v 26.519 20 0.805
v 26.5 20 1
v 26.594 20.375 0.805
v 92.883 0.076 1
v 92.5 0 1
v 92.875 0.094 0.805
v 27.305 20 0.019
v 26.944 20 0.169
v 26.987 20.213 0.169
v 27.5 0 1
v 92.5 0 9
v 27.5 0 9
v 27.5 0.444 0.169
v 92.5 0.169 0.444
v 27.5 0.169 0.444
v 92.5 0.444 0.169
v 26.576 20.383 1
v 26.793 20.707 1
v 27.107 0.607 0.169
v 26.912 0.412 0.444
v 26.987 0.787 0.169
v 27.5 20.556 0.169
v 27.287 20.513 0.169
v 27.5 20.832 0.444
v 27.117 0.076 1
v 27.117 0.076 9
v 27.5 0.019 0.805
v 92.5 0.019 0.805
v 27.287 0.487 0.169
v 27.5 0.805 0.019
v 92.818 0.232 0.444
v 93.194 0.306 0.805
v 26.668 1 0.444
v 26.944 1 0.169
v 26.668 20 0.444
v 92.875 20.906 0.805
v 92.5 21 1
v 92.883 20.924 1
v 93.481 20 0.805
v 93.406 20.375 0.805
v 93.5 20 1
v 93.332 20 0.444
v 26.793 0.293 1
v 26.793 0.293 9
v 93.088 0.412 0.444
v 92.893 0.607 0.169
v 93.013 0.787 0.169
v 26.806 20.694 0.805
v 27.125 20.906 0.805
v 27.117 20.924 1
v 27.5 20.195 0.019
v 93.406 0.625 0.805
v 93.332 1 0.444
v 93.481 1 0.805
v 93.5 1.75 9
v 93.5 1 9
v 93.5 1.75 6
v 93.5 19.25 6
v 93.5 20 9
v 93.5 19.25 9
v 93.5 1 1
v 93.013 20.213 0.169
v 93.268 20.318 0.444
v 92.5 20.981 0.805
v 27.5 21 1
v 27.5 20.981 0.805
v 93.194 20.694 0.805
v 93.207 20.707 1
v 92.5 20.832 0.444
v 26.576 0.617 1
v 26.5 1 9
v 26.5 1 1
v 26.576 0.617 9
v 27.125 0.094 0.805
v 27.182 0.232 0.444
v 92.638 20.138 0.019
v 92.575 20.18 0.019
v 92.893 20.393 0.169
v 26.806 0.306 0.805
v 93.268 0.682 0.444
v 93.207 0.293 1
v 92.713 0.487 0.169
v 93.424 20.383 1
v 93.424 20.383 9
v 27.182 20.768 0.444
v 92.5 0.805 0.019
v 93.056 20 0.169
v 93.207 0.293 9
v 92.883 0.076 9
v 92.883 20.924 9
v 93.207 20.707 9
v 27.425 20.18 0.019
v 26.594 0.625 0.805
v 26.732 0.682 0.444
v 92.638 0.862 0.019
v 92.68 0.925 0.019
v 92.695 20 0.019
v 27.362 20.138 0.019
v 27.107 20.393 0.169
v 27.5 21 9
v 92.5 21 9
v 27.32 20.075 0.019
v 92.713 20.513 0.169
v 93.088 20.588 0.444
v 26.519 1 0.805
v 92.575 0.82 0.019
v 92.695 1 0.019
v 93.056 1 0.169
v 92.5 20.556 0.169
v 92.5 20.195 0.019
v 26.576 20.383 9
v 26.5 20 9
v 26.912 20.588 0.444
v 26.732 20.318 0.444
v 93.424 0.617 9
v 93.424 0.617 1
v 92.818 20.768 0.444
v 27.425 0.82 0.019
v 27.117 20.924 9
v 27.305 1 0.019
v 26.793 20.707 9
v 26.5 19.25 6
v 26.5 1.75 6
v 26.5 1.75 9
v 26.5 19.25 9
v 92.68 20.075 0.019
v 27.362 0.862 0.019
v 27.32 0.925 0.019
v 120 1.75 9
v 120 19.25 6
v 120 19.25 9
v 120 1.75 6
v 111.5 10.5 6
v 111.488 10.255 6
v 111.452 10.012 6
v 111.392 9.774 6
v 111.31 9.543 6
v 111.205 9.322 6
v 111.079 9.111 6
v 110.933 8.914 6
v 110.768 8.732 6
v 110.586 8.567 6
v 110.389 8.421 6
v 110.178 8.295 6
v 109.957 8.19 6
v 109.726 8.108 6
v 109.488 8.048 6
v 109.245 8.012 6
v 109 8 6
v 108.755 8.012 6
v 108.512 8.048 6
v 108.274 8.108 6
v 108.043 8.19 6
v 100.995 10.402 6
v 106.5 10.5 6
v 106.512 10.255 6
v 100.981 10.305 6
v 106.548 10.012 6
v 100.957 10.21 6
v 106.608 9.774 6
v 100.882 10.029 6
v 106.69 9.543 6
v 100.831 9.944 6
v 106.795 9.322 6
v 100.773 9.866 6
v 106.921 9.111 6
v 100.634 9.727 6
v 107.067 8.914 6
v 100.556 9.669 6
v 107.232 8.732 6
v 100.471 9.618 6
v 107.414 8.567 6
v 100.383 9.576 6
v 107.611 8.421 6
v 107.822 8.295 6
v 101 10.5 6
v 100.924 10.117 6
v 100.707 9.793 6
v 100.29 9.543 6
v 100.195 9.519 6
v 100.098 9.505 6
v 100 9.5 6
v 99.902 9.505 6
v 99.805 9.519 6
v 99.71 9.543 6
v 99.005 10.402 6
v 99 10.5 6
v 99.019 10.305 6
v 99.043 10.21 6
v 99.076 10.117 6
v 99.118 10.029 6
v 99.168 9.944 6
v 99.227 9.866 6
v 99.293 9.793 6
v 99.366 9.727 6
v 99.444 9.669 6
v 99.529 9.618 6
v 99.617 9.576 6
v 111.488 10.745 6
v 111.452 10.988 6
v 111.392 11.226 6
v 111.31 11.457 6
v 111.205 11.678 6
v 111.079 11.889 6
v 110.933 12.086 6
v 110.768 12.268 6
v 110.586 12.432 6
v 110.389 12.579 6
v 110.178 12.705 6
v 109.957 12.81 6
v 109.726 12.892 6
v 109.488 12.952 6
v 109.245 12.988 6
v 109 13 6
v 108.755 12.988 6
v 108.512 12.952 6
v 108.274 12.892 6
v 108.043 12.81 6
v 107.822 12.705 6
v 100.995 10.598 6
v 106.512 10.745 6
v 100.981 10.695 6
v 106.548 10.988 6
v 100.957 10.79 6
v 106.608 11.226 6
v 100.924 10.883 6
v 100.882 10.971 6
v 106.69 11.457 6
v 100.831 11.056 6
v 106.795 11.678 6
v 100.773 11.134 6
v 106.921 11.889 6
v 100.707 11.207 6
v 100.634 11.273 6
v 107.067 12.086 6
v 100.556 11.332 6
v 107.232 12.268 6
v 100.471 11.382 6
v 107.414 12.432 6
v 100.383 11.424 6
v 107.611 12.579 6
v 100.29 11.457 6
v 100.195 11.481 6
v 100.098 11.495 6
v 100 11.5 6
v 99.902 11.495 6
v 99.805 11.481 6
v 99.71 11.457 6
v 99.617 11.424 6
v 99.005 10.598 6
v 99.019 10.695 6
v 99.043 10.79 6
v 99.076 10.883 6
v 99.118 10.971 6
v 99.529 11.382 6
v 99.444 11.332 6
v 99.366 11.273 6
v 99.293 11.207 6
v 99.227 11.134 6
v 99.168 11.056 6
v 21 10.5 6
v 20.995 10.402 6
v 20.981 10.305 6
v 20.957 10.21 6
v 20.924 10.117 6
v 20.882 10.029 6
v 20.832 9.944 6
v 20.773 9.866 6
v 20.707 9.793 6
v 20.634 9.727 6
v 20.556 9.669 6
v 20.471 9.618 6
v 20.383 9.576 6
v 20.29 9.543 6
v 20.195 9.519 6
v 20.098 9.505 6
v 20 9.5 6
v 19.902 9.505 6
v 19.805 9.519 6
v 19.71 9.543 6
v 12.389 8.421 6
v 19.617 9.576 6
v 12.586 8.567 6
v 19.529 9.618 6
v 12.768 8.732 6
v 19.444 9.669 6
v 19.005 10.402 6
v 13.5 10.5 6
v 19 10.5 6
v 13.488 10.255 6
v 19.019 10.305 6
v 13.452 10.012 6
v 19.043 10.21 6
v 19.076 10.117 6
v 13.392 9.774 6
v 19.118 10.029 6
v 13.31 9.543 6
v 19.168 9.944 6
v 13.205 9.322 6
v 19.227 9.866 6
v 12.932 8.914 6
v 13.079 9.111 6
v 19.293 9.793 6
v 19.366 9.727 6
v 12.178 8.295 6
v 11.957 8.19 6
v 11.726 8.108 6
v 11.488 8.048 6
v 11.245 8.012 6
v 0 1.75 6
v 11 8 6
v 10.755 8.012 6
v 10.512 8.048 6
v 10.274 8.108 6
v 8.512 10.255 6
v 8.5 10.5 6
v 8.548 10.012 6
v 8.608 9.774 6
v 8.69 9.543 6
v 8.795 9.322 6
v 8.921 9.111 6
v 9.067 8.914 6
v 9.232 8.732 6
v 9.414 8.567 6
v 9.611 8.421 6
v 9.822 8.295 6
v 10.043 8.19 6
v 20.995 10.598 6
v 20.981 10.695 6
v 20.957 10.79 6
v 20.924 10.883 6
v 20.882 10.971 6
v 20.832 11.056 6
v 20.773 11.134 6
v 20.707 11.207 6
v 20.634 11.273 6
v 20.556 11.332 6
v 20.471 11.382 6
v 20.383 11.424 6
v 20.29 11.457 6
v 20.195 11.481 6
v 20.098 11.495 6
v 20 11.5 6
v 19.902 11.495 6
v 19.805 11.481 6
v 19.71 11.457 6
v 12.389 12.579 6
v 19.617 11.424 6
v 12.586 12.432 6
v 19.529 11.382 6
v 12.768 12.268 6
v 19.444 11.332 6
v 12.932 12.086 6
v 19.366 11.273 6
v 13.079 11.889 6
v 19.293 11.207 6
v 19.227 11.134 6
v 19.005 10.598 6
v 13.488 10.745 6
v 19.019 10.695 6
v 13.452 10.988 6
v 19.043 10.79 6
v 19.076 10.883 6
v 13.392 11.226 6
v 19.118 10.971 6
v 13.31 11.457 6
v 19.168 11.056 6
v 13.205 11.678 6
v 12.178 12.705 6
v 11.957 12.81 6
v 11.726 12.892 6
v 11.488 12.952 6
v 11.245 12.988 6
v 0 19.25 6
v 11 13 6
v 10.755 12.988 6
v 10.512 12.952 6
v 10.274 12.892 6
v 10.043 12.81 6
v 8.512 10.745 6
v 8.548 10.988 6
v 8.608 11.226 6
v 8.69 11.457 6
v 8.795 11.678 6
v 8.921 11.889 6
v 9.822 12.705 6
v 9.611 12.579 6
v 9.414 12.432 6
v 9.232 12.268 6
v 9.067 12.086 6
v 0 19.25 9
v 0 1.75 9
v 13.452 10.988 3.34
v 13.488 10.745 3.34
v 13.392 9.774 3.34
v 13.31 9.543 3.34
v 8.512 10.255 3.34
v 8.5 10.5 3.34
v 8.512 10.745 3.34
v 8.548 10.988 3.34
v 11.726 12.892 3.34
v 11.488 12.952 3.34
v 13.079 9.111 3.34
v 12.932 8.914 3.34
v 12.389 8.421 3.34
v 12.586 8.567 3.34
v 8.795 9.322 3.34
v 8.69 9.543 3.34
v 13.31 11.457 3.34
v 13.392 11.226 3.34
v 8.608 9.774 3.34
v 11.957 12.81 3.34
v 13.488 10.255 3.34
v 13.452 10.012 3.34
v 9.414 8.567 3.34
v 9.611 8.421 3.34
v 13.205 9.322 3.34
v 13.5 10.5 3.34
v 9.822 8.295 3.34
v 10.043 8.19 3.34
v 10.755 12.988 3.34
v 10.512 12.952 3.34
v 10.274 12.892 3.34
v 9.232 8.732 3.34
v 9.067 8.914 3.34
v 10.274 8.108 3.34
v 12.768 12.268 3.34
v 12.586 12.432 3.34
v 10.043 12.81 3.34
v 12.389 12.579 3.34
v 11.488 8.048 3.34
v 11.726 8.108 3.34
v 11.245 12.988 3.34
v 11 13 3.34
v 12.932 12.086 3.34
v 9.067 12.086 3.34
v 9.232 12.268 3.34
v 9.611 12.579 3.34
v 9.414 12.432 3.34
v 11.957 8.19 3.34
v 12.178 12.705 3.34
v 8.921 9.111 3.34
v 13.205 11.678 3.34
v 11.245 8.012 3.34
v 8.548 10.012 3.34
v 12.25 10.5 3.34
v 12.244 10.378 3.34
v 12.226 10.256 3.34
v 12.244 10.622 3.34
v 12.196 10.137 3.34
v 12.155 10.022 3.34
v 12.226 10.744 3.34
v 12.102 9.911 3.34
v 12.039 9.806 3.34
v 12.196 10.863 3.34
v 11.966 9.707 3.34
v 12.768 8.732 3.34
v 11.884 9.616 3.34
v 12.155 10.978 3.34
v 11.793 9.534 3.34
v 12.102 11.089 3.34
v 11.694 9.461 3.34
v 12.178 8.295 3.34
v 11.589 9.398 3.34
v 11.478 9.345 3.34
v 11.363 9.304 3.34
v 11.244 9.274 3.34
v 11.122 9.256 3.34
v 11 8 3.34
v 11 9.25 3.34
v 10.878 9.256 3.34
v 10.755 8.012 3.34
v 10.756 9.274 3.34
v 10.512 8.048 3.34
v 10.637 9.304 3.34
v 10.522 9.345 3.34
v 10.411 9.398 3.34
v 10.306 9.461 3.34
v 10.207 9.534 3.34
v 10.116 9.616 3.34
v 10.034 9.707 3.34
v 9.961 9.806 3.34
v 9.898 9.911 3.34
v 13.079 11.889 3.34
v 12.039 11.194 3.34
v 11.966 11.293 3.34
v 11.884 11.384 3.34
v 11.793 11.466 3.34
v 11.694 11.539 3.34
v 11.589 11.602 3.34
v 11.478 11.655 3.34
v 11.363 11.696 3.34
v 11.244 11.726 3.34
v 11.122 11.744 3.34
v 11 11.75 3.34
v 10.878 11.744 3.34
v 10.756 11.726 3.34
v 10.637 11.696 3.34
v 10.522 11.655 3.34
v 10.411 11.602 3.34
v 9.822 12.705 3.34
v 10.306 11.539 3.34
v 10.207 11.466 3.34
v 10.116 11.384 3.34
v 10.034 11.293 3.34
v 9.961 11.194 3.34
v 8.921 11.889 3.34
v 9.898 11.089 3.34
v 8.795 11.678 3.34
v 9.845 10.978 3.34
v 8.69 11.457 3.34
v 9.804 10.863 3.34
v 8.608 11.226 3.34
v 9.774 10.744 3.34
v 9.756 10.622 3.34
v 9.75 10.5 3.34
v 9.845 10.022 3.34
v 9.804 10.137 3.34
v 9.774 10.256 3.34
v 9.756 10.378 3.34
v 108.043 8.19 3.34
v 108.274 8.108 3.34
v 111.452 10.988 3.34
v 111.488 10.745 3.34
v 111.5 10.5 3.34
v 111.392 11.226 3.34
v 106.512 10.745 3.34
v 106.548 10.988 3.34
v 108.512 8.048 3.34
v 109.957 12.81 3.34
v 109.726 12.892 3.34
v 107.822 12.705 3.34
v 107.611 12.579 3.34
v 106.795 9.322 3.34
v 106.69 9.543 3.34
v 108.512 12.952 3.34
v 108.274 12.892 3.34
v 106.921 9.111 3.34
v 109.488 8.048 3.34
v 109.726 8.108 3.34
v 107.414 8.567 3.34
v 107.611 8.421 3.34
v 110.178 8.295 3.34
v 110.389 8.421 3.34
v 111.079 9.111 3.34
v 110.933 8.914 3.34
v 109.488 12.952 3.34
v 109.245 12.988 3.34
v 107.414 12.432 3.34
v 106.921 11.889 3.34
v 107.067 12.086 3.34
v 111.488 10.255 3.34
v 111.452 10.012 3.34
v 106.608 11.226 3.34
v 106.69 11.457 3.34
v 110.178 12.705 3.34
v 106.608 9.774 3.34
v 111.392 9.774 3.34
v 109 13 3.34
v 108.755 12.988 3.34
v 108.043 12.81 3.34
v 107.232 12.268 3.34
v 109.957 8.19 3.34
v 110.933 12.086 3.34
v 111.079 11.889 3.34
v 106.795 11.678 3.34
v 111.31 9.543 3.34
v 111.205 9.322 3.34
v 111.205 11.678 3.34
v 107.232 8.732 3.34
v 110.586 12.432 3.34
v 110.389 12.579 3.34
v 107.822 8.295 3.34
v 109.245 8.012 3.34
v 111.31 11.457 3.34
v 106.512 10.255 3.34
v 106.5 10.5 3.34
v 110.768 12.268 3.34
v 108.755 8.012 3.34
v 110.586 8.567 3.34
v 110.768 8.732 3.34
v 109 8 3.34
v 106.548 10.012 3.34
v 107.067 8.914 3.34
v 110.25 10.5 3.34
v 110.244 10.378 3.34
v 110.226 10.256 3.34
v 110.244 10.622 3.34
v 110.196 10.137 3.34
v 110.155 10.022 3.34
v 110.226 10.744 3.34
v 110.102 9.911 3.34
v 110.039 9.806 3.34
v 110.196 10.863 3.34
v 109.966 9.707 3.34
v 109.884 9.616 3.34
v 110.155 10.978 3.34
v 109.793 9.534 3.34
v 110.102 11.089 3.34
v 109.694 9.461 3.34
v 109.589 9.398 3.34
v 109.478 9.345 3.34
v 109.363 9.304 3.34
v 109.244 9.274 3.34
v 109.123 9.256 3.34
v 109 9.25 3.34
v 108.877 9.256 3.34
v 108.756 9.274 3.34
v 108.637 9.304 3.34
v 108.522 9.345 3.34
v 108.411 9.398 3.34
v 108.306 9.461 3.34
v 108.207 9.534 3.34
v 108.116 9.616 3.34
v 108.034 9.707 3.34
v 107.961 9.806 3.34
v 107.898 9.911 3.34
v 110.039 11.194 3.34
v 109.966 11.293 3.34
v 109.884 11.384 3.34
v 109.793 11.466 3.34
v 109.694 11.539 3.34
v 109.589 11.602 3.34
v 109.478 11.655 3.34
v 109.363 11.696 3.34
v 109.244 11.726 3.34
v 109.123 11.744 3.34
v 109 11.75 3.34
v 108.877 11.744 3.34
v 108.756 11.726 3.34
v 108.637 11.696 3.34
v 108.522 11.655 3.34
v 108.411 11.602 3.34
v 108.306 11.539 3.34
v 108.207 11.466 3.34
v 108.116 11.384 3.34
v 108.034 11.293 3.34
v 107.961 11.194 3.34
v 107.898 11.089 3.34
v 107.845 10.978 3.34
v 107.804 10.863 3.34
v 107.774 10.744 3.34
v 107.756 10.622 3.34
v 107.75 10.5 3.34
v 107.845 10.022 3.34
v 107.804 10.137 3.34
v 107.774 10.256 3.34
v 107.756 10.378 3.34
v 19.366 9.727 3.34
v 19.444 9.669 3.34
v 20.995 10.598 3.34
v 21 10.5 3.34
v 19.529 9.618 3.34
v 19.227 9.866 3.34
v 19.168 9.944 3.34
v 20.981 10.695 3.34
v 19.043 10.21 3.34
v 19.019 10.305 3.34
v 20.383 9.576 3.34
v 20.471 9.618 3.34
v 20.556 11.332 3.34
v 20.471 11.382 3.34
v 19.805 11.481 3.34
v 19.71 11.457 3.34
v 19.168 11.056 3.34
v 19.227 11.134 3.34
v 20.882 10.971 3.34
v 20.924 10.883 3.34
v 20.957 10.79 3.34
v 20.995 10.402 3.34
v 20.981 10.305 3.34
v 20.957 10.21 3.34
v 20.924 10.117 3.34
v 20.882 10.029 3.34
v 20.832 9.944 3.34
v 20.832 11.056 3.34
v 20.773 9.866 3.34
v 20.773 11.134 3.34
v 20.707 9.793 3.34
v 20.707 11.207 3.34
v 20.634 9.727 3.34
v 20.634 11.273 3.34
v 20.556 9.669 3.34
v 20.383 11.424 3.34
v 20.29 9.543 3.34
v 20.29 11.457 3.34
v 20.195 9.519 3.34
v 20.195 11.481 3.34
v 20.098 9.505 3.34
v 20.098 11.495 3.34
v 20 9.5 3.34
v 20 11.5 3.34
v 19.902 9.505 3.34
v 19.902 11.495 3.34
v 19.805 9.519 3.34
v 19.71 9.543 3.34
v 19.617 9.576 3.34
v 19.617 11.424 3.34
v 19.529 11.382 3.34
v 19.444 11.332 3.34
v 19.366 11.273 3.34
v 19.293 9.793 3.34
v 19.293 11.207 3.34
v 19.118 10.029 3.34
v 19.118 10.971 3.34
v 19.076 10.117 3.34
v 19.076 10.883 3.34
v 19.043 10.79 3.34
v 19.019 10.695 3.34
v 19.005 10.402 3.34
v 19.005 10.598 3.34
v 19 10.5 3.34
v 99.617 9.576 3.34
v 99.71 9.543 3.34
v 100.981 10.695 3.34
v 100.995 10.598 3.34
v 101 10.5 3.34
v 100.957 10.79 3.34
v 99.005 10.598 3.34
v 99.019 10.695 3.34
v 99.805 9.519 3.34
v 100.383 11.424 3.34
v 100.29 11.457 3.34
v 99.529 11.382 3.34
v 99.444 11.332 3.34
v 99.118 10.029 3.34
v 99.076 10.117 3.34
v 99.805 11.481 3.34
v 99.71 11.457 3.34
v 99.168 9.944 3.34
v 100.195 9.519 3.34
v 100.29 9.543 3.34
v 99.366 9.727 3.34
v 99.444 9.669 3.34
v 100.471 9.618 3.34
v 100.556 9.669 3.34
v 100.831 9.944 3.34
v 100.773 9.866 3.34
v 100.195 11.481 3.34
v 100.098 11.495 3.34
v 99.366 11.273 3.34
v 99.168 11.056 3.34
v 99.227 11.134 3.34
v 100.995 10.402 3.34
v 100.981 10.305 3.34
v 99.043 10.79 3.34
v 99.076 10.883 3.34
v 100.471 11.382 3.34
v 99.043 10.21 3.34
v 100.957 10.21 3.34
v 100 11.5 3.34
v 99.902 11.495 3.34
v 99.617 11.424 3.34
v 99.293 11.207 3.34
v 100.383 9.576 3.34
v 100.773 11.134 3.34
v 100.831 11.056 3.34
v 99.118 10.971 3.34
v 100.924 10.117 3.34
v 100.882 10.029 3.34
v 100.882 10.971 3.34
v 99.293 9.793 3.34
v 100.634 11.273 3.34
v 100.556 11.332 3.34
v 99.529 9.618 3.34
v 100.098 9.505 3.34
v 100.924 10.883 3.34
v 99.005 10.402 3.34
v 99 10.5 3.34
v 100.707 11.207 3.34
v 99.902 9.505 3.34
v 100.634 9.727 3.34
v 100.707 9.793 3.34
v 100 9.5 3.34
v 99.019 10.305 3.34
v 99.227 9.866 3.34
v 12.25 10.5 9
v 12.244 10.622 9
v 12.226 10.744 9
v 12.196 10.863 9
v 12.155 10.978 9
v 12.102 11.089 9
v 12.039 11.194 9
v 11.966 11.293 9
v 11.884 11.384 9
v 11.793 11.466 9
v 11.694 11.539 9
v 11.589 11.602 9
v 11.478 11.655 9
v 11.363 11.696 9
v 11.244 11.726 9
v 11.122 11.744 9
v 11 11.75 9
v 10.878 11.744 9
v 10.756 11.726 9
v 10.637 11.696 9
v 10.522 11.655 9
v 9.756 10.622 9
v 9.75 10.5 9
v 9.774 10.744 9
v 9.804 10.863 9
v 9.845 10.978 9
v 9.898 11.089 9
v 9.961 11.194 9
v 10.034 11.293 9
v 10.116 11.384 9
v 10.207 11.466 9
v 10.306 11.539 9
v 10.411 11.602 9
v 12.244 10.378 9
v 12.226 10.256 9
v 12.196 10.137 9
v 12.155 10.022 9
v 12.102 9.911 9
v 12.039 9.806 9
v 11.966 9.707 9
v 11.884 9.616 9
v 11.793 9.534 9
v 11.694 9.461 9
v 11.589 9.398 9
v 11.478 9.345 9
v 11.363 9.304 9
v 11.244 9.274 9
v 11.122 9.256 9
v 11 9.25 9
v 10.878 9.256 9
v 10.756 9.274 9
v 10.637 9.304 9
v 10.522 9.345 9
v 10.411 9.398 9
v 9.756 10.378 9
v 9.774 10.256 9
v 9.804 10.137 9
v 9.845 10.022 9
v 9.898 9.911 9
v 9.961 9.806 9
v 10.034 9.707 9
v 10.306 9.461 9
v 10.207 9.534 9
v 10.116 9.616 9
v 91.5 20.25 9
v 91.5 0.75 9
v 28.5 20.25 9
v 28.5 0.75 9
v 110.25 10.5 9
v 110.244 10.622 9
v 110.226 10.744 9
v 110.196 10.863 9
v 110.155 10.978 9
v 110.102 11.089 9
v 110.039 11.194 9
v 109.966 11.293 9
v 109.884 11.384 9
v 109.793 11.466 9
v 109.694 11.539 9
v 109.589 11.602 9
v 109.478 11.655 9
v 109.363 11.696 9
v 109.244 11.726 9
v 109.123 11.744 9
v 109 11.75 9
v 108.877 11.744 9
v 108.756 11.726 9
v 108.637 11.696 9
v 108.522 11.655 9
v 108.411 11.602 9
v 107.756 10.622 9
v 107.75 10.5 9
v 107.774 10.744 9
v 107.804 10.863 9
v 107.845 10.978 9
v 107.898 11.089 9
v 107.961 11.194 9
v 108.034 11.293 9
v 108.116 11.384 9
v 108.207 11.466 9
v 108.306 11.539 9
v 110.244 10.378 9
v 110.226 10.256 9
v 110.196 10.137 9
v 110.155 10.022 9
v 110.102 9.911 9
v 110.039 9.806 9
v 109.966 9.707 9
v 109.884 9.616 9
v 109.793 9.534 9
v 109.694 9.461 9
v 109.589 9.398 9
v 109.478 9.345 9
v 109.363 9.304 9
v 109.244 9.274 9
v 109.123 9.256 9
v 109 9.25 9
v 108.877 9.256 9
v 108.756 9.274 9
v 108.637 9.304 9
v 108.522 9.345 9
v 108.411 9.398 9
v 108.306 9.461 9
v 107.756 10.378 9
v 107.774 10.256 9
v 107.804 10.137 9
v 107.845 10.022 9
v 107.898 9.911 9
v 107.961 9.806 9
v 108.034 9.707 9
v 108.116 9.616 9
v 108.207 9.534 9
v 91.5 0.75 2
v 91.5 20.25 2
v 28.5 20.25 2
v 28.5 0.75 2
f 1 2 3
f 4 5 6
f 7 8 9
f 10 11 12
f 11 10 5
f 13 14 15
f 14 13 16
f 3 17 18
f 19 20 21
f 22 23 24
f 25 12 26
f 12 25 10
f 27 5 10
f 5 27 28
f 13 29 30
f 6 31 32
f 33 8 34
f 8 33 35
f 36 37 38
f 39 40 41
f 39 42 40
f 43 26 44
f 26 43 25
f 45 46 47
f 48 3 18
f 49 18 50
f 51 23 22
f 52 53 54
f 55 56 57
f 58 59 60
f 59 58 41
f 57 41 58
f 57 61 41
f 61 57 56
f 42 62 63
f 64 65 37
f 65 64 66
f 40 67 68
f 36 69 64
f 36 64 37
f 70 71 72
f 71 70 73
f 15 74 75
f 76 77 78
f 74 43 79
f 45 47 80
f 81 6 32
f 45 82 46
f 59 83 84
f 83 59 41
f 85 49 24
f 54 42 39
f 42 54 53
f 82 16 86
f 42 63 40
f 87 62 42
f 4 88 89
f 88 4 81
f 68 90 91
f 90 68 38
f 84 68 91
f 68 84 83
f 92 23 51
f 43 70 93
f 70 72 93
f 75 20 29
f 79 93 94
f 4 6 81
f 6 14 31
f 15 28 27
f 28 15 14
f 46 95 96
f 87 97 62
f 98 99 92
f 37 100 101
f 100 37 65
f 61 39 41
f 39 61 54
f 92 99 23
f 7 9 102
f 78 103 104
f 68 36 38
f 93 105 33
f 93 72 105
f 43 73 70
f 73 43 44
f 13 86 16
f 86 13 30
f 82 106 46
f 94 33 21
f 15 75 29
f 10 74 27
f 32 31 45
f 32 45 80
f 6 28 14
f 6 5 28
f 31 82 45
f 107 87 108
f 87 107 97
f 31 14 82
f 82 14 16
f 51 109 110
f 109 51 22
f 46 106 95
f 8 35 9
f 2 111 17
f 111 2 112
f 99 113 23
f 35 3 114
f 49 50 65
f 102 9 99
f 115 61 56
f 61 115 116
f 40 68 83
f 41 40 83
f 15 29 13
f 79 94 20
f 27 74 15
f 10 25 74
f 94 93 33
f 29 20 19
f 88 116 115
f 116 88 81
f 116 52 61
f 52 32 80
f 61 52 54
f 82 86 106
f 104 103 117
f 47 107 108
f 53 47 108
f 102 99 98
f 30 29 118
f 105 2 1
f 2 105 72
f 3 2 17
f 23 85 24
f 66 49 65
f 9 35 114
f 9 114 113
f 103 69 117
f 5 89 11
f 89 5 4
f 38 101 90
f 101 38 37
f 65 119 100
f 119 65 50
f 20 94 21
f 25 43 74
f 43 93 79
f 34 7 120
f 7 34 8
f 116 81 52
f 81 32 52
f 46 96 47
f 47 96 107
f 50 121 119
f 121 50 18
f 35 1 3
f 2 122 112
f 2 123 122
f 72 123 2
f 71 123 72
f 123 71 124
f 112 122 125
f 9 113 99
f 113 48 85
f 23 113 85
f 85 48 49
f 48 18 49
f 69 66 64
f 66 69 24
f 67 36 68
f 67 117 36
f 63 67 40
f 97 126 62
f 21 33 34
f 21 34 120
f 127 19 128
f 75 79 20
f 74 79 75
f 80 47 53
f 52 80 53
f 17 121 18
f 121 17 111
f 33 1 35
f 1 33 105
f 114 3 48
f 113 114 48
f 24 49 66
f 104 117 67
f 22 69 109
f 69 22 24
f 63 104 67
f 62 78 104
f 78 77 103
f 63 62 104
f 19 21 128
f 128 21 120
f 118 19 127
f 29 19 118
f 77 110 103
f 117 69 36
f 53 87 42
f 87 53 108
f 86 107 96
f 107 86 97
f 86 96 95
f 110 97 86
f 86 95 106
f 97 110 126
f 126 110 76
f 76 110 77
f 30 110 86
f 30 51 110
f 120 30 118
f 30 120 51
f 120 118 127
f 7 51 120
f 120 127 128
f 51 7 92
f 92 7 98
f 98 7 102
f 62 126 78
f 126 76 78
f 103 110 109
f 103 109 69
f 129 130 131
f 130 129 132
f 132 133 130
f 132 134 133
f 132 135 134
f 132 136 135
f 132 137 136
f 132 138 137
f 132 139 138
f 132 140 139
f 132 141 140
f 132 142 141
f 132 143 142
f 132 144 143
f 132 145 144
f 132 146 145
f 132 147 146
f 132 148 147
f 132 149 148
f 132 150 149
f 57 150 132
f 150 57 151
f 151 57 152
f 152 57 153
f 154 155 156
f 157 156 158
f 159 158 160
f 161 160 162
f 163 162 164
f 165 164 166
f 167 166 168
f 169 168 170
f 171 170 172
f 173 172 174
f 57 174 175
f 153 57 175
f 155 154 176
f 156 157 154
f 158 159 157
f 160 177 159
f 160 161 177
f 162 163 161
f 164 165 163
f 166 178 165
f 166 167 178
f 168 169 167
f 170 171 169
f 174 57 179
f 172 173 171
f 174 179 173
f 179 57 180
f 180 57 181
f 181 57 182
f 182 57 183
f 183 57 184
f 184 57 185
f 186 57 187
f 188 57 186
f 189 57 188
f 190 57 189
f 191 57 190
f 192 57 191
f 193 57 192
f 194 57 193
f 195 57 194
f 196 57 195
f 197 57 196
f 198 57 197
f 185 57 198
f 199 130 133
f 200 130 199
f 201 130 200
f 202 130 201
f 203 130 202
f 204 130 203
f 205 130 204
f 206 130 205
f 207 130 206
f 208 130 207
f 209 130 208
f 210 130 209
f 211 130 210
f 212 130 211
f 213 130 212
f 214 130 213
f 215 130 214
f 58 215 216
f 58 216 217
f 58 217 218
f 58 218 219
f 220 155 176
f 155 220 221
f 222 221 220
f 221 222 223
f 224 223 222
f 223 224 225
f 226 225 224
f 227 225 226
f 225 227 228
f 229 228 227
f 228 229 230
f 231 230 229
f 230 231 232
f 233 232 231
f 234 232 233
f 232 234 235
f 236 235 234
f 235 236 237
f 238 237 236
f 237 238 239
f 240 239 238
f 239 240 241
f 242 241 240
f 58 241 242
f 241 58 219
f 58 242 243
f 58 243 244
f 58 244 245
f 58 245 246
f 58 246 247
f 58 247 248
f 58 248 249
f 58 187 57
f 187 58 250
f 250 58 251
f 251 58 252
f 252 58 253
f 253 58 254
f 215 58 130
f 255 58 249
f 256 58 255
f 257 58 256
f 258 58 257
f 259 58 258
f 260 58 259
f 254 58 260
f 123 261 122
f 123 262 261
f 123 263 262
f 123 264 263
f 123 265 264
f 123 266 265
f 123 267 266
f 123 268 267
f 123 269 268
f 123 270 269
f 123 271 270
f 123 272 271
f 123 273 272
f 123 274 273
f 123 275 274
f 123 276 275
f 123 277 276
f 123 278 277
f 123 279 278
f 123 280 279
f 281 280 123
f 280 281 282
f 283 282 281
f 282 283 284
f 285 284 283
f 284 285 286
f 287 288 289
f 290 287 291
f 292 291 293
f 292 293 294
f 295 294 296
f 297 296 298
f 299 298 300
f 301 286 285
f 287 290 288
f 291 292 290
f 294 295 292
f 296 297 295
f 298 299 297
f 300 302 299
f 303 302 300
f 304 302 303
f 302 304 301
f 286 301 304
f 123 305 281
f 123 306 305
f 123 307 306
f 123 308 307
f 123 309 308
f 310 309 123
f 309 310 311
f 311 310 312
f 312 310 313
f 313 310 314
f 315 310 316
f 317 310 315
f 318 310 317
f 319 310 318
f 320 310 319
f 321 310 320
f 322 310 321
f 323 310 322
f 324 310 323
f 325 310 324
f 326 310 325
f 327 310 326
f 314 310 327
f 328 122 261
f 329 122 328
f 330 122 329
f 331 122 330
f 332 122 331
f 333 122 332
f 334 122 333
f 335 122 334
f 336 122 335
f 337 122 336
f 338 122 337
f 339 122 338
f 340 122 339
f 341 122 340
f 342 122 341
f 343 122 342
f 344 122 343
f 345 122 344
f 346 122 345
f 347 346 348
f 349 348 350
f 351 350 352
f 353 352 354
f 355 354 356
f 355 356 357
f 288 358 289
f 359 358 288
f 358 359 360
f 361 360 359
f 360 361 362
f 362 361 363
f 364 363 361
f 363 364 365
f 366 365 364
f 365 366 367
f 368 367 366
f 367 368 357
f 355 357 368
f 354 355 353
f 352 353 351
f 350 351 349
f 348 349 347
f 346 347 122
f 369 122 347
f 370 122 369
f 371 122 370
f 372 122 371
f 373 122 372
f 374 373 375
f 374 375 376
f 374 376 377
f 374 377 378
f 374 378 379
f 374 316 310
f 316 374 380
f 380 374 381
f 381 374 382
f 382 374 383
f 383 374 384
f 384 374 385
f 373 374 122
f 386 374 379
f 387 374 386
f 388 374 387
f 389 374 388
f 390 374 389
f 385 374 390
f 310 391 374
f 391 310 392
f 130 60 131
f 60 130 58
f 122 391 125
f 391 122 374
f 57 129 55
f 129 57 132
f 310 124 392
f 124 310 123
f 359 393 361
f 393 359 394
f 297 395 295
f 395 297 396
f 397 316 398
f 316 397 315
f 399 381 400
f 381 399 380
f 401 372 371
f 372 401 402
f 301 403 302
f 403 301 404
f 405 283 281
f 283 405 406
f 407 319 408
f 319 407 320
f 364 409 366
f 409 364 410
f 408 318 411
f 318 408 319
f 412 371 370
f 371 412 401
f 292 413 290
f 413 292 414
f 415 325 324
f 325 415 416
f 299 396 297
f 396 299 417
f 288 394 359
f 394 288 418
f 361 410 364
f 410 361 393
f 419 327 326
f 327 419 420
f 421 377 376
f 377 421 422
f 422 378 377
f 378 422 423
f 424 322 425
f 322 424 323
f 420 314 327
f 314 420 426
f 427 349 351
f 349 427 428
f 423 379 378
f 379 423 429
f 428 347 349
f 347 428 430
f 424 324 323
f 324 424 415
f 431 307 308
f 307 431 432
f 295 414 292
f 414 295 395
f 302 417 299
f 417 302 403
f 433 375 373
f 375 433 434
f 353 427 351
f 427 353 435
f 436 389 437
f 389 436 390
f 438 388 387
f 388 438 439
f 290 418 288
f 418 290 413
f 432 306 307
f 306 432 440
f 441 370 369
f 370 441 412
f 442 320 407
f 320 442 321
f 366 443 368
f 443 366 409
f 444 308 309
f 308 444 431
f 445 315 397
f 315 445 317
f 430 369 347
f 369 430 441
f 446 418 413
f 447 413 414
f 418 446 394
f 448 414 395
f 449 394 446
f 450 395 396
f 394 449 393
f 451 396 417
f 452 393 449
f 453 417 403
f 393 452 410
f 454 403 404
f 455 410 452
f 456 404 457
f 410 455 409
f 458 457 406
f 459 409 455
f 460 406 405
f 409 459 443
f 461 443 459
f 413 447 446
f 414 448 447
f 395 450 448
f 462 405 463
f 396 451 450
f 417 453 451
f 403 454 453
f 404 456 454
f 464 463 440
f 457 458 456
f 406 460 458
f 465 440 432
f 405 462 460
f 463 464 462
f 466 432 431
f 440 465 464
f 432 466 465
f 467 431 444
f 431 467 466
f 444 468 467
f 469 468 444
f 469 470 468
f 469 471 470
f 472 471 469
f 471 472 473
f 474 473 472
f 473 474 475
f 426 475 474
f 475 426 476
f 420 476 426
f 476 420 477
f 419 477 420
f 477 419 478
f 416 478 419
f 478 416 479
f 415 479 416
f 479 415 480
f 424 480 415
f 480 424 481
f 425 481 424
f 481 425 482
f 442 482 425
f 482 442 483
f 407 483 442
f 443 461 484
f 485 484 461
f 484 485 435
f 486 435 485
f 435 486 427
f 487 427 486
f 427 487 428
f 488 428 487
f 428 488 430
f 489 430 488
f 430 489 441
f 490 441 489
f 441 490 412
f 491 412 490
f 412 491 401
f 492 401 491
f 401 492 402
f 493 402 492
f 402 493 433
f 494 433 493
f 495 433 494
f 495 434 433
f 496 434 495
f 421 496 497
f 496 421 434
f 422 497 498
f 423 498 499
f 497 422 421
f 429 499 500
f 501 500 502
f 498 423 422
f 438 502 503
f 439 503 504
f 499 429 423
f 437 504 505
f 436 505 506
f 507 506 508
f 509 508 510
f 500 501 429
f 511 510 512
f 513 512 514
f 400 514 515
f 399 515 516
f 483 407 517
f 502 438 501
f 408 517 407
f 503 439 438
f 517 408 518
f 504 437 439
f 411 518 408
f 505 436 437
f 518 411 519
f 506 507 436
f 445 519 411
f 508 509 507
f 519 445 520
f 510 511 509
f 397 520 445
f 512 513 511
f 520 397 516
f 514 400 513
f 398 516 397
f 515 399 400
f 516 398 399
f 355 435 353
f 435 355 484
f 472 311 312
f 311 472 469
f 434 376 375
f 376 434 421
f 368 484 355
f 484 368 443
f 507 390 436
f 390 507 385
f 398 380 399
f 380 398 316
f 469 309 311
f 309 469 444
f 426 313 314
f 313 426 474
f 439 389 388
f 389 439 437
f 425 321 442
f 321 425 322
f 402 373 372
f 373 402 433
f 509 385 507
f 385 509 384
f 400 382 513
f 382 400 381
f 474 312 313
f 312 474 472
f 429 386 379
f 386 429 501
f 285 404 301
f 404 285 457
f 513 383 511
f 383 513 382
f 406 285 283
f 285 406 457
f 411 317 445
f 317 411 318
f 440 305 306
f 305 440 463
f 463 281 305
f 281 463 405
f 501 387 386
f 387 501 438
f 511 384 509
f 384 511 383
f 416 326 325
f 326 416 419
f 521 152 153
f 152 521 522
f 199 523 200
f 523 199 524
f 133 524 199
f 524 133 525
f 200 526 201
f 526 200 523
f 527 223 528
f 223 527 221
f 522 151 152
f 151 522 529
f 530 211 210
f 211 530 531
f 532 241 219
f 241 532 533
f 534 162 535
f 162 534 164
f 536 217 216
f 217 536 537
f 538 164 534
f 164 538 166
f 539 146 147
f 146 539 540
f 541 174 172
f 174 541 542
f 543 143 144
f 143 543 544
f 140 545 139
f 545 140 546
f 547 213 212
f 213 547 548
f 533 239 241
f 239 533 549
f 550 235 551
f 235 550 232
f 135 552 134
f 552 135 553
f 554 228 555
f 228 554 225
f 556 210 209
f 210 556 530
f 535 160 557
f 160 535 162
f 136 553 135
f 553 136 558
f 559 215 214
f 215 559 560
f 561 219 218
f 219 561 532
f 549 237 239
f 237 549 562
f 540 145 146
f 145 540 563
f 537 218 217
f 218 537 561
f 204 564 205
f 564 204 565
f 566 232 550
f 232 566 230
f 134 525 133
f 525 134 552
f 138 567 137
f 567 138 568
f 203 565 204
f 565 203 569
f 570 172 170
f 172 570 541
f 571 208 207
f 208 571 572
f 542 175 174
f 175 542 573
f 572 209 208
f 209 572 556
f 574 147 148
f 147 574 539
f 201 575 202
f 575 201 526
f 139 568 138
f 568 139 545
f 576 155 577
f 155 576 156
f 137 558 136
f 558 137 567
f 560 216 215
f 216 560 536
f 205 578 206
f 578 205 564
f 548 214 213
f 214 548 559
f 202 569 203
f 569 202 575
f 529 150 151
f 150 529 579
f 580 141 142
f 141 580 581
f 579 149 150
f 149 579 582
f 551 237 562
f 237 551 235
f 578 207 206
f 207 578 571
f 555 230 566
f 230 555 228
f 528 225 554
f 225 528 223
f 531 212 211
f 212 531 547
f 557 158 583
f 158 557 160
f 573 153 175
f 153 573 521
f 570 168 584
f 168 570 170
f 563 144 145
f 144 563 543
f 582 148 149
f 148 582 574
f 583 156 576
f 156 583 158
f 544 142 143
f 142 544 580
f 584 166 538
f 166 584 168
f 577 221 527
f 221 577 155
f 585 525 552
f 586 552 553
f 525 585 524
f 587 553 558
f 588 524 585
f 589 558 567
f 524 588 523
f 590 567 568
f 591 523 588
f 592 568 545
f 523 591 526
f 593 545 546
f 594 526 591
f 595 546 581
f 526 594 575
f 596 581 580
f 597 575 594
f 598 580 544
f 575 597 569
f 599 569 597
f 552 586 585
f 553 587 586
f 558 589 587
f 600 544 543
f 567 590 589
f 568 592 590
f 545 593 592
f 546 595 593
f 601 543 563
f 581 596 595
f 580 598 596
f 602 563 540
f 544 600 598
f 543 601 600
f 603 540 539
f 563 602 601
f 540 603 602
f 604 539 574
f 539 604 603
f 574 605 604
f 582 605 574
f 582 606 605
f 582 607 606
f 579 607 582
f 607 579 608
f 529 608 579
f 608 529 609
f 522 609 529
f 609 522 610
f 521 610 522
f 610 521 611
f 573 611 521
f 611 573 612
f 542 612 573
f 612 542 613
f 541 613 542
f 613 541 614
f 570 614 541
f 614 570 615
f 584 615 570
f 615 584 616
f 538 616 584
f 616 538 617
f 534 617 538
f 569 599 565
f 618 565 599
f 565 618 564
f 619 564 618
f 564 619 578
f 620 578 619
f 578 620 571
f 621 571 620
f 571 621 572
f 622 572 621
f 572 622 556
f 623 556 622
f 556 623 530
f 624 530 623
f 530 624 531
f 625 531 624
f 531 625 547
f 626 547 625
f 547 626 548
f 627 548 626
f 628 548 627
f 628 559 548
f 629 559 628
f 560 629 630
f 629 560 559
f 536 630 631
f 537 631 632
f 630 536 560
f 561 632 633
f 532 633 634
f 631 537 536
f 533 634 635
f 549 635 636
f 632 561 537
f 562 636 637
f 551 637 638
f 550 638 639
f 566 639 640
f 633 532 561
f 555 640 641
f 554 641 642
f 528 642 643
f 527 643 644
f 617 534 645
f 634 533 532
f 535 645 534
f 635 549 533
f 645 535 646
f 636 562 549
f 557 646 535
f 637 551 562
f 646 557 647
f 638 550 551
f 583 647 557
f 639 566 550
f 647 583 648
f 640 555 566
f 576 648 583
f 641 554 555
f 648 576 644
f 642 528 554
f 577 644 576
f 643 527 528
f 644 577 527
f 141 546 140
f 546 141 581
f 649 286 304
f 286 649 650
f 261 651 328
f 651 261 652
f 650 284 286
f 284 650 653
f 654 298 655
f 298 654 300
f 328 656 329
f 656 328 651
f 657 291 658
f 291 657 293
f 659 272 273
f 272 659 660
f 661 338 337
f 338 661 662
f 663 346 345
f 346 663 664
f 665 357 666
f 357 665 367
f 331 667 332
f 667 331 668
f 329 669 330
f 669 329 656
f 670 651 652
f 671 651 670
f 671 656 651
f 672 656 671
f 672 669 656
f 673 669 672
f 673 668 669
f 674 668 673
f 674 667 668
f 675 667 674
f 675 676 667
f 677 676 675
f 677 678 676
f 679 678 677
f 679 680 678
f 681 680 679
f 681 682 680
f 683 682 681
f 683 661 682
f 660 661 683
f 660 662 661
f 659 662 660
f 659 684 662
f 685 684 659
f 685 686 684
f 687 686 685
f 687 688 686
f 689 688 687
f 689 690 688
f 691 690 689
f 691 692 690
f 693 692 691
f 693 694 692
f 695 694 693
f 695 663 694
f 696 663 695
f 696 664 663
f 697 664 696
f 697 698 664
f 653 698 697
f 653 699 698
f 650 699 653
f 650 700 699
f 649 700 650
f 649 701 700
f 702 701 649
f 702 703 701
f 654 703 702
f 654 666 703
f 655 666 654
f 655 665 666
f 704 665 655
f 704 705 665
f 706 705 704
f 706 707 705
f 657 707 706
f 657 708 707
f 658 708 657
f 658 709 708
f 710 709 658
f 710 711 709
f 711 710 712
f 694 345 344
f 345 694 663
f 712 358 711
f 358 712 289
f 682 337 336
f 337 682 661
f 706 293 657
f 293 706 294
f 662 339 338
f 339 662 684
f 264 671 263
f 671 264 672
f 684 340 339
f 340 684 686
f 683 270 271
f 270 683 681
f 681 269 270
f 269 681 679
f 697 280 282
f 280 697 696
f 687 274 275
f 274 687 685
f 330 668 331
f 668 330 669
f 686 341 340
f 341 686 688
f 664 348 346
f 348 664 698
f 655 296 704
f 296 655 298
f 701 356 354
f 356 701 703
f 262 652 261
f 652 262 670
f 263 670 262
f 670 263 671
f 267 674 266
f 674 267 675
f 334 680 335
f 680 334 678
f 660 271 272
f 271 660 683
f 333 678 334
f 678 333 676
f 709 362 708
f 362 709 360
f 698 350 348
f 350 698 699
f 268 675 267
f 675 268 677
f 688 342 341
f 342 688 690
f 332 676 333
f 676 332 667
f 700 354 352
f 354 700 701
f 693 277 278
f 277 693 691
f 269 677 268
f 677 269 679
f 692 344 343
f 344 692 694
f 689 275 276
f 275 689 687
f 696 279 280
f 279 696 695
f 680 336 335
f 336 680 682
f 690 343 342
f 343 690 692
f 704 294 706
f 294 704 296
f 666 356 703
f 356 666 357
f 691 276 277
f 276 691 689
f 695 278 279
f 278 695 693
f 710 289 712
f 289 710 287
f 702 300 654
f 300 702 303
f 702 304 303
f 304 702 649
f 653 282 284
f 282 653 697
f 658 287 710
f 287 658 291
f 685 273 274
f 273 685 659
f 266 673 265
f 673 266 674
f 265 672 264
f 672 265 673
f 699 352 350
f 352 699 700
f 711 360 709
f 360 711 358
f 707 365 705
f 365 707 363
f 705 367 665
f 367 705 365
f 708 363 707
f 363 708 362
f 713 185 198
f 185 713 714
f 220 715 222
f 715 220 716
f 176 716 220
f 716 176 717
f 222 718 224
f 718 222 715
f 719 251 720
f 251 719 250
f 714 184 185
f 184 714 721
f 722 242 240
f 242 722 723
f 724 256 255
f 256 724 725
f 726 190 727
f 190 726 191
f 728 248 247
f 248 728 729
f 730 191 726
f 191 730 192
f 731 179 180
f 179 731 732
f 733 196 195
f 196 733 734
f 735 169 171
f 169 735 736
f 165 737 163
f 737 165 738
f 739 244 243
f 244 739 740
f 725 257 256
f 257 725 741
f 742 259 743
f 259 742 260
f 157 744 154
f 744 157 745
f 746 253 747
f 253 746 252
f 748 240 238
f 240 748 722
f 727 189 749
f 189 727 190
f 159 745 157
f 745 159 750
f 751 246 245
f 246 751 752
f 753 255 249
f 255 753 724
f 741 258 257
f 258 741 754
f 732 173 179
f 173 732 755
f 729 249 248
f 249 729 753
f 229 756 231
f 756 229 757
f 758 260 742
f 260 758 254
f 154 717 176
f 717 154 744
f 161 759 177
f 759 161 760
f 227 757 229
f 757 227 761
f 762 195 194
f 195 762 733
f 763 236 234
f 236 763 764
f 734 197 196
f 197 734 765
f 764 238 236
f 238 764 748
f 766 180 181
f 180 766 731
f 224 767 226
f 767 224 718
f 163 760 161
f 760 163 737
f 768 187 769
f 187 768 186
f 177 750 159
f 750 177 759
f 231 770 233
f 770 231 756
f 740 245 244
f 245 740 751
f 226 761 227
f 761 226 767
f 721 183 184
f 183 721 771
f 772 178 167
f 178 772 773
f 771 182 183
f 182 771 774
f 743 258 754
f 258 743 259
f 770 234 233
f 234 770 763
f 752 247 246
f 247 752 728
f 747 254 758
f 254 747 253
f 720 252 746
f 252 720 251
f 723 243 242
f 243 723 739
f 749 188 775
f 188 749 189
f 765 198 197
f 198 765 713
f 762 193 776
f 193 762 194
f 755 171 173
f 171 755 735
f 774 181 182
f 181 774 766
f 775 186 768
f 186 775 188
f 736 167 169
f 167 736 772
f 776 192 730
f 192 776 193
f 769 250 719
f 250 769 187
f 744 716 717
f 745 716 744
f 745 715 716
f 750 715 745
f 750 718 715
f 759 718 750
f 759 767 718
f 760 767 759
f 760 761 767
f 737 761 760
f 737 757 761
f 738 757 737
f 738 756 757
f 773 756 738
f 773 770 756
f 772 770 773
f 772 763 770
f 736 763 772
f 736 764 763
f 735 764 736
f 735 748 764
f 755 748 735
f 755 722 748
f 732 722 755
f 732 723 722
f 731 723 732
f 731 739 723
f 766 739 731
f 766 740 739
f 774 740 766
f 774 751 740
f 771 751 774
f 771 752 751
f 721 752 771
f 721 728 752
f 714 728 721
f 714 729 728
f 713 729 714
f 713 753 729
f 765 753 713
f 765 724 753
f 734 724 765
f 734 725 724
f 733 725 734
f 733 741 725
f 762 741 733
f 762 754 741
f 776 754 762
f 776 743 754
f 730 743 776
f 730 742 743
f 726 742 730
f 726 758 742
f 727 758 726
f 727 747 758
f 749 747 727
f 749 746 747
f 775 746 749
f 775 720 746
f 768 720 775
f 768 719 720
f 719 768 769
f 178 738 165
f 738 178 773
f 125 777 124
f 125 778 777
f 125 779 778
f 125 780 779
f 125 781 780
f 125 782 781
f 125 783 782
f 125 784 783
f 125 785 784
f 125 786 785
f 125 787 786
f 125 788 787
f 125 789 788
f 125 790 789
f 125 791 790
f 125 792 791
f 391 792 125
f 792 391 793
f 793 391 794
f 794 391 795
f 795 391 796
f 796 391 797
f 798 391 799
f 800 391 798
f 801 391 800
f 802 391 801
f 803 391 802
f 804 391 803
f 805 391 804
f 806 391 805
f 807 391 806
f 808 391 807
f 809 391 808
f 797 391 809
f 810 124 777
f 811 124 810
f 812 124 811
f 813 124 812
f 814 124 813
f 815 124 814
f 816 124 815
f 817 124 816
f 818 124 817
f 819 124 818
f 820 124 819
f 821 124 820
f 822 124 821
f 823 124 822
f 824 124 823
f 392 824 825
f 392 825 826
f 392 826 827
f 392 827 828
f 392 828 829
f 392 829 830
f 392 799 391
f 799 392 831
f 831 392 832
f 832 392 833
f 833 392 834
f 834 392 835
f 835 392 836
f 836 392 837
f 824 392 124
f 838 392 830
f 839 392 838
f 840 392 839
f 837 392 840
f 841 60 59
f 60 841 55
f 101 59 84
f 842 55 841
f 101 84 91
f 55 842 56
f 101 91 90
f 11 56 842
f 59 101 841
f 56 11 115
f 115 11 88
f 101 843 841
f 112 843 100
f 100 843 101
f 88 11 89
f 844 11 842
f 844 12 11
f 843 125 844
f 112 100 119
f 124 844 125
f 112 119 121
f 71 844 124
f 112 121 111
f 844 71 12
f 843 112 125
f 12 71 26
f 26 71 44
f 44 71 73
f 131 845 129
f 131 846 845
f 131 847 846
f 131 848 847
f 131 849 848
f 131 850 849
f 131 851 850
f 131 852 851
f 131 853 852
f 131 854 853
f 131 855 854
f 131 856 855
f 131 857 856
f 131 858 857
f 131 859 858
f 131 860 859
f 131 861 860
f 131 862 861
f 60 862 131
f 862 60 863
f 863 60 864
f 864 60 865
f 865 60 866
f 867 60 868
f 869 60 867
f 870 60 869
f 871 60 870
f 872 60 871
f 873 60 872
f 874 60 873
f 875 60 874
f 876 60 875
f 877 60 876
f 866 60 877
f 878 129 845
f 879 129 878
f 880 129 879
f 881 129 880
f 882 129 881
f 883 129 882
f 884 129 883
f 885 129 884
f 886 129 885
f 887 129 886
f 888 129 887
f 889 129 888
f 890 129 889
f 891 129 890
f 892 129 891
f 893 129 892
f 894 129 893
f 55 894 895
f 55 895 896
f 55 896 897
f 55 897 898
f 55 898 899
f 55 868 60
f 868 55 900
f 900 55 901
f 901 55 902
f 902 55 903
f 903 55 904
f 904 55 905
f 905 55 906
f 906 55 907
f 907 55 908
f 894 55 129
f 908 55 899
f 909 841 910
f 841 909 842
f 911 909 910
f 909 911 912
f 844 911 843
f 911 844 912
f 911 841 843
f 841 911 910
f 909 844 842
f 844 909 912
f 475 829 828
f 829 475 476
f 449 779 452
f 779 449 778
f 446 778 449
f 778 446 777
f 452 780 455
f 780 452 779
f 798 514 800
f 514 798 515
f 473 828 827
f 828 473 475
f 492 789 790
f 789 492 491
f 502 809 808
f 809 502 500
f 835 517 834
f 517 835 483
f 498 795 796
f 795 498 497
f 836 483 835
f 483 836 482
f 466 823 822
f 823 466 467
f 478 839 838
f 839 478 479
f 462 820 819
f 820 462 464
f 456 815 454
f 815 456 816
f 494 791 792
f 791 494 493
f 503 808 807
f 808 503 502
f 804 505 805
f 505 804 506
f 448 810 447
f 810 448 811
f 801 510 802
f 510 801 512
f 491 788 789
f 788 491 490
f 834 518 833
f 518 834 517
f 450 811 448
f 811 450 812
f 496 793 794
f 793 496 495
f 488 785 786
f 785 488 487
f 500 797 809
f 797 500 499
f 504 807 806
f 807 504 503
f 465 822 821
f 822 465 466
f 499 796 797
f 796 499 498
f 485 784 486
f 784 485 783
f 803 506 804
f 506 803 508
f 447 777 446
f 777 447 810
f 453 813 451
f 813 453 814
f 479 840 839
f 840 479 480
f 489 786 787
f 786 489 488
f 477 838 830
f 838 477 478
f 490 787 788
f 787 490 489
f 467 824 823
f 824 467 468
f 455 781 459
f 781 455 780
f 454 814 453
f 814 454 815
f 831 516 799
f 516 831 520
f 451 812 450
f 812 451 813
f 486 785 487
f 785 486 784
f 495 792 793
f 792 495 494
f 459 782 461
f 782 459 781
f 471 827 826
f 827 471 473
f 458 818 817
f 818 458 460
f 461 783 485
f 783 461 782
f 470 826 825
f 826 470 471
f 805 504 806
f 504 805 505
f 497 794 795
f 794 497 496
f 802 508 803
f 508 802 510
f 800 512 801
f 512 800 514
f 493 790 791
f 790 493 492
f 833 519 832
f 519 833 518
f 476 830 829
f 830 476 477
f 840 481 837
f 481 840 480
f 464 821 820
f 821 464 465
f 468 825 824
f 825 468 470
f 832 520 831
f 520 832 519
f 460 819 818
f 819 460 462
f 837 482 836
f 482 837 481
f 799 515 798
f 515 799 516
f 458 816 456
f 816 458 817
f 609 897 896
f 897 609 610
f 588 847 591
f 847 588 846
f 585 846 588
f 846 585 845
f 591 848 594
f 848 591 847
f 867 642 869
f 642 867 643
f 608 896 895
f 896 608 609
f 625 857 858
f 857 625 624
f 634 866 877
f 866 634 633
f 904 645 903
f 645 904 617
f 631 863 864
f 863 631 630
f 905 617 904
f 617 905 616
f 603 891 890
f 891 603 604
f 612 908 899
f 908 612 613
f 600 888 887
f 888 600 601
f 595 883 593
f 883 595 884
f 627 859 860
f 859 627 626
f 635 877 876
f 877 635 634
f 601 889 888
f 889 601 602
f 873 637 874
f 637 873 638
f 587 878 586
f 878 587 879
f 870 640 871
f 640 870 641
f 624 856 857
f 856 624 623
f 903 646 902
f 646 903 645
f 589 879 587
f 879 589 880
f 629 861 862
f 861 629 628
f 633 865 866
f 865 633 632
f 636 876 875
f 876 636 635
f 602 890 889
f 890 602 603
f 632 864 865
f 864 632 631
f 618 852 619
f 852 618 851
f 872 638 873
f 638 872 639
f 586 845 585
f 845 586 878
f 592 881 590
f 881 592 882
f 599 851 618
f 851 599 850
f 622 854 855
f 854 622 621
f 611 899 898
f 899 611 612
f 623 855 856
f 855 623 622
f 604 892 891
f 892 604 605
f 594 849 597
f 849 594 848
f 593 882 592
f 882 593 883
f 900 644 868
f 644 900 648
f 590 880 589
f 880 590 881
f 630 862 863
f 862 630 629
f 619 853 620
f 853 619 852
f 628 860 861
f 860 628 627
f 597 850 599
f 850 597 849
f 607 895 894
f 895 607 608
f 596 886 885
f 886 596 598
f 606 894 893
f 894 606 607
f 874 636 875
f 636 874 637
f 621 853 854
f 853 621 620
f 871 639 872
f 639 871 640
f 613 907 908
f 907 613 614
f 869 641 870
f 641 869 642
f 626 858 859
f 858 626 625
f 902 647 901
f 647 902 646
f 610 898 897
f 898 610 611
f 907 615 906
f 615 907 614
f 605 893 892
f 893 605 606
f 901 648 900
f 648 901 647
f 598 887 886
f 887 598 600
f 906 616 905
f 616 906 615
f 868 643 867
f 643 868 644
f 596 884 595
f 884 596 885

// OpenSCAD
doFlatcar = true;
doContainer = false;

module __Customizer_Limit__ () {}

$fn=64;

len = 120;
top_cutout = 63;
end_cutout = ((len - top_cutout)/2)-2;
w=21;
ow=17.5;

cutout_h = 6.0;

if (doFlatcar)
    flatcar();
if (doContainer)
    container();

module container() {
    translate([0, -6, 13])
    rotate([180, 0, 0]) 
    {
        translate([-10, -3, 1]) {

            difference() {
                cube([len+20, w+6, 12]);
                translate([10-.5, 2, -2]) {
                    cube([len+1, w+2, 13]);
                }
                translate([2, 8.5, -2]) {
                    cube([len+16, 10, 13]);
                }
            }
        }
    }
}

module flatcar() {
    difference() {
        union() {
            translate([end_cutout, 0, 0])
                roundedBlock(len-(end_cutout*2), w, 12, 1);
            translate([0, (w-ow)/2, cutout_h])
                cube([len, ow, 3.01]);
            // truck mount
            translate([11, w/2, cutout_h-2.66])
                cylinder(d=5, h=2.66);
            translate([len-11, w/2, cutout_h-2.66])
                cylinder(d=5, h=2.66);
            // pin to stop truck from rotating
            translate([11+9, w/2, cutout_h-2.66])
                cylinder(d=2, h=2.66);
            translate([len-(11+9), w/2, cutout_h-2.66])
                cylinder(d=2, h=2.66);
        }
        // cut off rounded top
        translate([0, -.01, 9])
            cube([len, w+.02, 4]);
        // inner compartment
        translate([(len-top_cutout)/2, .75, 2])
            cube([top_cutout, w-1.5, 9]);

        // truck mounting holes
        translate([11, w/2, 0])
            cylinder(d=2.5, h=10);
        translate([len-11, w/2, 0])
            cylinder(d=2.5, h=10);

    }
}

//roundedBlock(w, w, 16, 3);

fn=16*1;

module roundedBlock(l, w, h, r)
{
    translate([r, r, r])
    hull() 
    {
        l1 = l - (r*2);
        w1 = w - (r*2);
        h1 = h - (r*2);
        translate([0, 0, 0])
            corner(h1, r);
        translate([0, w1, 0])
            corner(h1, r);
        translate([l1, 0, 0])
            corner(h1, r);
        translate([l1, w1, 0])
            corner(h1, r);
    }
}

module corner(h, r) {
    cylinder(r=r, h=h, $fn=fn);
    sphere(r=r, $fn=fn);
    translate([0, 0, h])
        sphere(r=r, $fn=fn);

}
